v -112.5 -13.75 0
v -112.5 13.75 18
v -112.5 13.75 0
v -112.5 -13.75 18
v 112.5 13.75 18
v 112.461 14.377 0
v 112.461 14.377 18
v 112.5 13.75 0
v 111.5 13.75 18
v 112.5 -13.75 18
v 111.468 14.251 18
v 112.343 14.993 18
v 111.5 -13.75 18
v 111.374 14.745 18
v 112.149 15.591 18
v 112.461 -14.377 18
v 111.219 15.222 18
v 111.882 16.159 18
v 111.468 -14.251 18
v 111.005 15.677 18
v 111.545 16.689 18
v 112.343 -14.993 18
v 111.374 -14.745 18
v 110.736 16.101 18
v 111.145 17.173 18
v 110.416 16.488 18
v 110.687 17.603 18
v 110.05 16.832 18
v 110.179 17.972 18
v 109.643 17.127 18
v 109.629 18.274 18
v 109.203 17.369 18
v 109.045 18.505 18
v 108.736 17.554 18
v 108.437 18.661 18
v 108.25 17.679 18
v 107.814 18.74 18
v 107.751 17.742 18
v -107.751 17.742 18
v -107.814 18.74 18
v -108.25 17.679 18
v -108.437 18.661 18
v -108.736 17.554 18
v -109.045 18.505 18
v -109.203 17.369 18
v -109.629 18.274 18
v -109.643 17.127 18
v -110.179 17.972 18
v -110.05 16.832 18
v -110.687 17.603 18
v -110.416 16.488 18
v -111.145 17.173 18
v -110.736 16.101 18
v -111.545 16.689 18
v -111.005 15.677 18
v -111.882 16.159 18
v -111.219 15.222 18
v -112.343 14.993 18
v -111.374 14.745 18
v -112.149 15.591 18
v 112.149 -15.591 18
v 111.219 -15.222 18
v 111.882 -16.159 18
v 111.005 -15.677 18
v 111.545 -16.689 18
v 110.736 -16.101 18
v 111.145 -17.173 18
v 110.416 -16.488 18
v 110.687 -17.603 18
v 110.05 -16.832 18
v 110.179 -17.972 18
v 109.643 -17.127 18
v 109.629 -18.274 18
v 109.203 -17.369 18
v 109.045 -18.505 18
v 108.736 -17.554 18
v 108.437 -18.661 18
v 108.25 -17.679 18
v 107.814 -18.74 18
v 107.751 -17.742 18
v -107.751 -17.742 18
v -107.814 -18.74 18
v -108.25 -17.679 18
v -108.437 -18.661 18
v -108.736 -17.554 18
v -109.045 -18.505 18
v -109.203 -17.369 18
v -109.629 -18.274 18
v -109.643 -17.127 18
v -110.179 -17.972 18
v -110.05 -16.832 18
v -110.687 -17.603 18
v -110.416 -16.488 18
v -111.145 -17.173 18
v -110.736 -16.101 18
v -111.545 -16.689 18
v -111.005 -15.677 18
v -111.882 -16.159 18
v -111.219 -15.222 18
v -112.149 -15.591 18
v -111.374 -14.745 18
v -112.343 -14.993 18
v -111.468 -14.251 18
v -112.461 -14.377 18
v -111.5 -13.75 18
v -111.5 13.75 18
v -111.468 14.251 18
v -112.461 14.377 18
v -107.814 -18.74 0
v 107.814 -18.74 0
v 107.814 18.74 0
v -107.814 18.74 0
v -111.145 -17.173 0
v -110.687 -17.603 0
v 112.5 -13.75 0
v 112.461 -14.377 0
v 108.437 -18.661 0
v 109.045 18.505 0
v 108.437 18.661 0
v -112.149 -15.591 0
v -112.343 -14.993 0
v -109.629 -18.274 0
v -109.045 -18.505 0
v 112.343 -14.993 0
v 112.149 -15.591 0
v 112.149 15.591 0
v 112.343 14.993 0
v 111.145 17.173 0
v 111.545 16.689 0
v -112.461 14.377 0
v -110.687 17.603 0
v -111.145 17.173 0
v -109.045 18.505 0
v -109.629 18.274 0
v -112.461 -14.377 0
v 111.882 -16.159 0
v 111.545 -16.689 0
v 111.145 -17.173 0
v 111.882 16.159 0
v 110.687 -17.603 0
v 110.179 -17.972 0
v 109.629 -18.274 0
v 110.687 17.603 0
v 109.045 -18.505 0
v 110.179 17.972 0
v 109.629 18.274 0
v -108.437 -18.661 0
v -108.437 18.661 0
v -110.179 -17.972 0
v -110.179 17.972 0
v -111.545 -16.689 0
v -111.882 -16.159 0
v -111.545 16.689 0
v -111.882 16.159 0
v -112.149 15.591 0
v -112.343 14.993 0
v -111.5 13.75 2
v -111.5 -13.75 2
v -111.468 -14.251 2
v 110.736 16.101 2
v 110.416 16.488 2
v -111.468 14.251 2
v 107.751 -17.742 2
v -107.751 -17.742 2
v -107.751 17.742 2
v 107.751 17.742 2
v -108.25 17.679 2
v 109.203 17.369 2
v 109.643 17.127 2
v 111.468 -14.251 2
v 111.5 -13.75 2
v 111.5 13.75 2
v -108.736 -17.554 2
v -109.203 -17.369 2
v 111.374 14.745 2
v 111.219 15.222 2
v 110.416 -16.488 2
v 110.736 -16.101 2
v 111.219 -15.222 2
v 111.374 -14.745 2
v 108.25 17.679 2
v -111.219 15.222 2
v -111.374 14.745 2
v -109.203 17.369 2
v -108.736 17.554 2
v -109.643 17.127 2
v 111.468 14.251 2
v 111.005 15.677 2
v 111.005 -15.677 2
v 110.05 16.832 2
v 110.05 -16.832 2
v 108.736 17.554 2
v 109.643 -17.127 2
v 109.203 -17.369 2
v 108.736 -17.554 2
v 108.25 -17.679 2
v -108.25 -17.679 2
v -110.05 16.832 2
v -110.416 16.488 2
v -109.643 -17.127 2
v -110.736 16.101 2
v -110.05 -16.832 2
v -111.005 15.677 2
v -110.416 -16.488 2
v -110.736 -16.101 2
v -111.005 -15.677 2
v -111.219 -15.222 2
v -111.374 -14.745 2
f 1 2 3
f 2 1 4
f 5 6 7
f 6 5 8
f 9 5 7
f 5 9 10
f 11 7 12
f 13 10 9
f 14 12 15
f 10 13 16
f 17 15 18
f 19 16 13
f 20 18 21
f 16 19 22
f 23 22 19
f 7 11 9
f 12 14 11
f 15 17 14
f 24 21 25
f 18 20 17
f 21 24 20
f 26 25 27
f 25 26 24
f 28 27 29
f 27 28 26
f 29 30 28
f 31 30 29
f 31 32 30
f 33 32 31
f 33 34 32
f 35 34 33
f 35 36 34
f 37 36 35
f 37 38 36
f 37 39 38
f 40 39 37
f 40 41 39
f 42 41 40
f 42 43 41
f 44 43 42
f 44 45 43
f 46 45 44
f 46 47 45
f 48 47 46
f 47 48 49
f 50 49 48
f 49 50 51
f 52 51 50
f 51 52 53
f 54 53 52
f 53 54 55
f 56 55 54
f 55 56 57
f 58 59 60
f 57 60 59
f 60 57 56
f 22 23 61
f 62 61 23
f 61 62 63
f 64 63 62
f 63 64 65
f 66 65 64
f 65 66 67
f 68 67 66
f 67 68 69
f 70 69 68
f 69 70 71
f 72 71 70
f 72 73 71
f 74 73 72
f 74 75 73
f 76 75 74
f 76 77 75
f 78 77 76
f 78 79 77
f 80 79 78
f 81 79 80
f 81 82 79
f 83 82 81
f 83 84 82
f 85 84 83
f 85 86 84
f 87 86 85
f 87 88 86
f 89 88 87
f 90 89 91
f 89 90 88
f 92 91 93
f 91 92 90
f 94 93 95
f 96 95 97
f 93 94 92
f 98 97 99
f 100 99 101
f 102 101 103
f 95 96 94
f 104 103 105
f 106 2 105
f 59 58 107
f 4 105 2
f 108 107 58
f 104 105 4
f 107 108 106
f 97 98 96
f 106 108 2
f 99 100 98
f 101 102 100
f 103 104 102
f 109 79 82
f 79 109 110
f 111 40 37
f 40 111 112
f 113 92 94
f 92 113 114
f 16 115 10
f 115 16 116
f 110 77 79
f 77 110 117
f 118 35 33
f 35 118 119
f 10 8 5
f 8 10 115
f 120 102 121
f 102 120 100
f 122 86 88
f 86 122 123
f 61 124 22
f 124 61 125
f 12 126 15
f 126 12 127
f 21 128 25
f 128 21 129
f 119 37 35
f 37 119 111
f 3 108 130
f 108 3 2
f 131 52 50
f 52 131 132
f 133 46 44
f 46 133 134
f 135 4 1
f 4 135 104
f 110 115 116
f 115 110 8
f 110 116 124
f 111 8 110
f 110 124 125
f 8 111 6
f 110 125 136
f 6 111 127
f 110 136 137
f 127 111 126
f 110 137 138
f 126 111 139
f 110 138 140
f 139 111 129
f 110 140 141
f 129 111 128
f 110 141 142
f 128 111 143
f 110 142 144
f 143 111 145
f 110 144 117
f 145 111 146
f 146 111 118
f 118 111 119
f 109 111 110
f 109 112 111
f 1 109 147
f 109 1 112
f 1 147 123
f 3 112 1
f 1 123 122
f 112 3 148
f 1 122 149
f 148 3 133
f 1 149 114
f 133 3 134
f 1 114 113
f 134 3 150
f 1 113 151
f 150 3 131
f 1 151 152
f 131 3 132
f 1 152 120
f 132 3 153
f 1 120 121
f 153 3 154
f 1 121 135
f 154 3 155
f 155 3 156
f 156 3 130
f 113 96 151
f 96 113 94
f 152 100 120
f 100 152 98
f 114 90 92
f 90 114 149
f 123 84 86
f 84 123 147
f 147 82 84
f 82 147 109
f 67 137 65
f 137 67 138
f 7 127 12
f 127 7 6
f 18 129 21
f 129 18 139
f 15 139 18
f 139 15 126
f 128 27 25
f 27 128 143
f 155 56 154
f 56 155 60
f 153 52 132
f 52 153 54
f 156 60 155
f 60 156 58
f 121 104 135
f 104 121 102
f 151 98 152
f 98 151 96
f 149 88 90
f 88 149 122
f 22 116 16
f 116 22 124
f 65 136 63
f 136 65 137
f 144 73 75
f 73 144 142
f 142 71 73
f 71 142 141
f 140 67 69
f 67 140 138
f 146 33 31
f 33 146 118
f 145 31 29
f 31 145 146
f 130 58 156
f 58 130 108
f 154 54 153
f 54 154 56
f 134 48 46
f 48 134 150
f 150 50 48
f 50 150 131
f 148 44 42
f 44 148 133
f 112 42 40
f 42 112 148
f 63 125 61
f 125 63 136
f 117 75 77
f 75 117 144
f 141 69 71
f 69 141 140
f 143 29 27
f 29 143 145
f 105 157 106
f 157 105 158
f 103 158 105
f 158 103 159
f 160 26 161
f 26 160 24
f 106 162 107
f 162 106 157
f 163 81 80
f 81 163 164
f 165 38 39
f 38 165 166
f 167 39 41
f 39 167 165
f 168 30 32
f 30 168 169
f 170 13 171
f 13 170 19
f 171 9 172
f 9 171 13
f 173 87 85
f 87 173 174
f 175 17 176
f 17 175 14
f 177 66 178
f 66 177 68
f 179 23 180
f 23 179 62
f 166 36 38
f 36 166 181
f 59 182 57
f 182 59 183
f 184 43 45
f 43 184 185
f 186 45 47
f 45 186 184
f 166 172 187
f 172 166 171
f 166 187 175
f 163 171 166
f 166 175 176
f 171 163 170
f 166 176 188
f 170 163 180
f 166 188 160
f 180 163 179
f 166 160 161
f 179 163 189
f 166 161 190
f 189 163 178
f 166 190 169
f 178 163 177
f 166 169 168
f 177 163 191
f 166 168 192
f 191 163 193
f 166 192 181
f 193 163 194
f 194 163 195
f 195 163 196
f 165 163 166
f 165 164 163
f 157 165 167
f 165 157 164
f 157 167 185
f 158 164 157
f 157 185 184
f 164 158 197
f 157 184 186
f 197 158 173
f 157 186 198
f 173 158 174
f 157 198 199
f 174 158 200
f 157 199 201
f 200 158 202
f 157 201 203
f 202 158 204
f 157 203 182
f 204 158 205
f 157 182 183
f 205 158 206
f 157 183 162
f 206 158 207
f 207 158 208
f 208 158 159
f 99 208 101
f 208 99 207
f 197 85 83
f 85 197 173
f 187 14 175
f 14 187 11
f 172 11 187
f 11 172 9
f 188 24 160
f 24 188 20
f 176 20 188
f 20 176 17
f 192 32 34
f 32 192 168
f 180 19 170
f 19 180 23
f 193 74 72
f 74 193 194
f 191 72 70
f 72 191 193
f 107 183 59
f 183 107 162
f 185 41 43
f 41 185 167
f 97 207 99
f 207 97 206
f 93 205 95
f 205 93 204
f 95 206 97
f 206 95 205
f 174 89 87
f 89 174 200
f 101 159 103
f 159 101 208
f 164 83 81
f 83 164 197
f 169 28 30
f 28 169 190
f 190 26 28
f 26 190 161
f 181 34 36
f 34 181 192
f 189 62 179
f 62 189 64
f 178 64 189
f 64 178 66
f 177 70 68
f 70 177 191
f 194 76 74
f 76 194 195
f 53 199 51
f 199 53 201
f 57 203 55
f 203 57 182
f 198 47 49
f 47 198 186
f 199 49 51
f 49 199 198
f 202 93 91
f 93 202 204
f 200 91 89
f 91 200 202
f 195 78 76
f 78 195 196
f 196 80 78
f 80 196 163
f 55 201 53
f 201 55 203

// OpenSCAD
$fn = 50;


difference() {
	union() {
		hull() {
			translate(v = [-107.5000000000, 13.7500000000, 0]) {
				cylinder(h = 18, r = 5);
			}
			translate(v = [107.5000000000, 13.7500000000, 0]) {
				cylinder(h = 18, r = 5);
			}
			translate(v = [-107.5000000000, -13.7500000000, 0]) {
				cylinder(h = 18, r = 5);
			}
			translate(v = [107.5000000000, -13.7500000000, 0]) {
				cylinder(h = 18, r = 5);
			}
		}
	}
	union() {
		translate(v = [0, 0, 2]) {
			hull() {
				translate(v = [-107.5000000000, 13.7500000000, 0]) {
					cylinder(h = 16, r = 4);
				}
				translate(v = [107.5000000000, 13.7500000000, 0]) {
					cylinder(h = 16, r = 4);
				}
				translate(v = [-107.5000000000, -13.7500000000, 0]) {
					cylinder(h = 16, r = 4);
				}
				translate(v = [107.5000000000, -13.7500000000, 0]) {
					cylinder(h = 16, r = 4);
				}
			}
		}
	}
}
